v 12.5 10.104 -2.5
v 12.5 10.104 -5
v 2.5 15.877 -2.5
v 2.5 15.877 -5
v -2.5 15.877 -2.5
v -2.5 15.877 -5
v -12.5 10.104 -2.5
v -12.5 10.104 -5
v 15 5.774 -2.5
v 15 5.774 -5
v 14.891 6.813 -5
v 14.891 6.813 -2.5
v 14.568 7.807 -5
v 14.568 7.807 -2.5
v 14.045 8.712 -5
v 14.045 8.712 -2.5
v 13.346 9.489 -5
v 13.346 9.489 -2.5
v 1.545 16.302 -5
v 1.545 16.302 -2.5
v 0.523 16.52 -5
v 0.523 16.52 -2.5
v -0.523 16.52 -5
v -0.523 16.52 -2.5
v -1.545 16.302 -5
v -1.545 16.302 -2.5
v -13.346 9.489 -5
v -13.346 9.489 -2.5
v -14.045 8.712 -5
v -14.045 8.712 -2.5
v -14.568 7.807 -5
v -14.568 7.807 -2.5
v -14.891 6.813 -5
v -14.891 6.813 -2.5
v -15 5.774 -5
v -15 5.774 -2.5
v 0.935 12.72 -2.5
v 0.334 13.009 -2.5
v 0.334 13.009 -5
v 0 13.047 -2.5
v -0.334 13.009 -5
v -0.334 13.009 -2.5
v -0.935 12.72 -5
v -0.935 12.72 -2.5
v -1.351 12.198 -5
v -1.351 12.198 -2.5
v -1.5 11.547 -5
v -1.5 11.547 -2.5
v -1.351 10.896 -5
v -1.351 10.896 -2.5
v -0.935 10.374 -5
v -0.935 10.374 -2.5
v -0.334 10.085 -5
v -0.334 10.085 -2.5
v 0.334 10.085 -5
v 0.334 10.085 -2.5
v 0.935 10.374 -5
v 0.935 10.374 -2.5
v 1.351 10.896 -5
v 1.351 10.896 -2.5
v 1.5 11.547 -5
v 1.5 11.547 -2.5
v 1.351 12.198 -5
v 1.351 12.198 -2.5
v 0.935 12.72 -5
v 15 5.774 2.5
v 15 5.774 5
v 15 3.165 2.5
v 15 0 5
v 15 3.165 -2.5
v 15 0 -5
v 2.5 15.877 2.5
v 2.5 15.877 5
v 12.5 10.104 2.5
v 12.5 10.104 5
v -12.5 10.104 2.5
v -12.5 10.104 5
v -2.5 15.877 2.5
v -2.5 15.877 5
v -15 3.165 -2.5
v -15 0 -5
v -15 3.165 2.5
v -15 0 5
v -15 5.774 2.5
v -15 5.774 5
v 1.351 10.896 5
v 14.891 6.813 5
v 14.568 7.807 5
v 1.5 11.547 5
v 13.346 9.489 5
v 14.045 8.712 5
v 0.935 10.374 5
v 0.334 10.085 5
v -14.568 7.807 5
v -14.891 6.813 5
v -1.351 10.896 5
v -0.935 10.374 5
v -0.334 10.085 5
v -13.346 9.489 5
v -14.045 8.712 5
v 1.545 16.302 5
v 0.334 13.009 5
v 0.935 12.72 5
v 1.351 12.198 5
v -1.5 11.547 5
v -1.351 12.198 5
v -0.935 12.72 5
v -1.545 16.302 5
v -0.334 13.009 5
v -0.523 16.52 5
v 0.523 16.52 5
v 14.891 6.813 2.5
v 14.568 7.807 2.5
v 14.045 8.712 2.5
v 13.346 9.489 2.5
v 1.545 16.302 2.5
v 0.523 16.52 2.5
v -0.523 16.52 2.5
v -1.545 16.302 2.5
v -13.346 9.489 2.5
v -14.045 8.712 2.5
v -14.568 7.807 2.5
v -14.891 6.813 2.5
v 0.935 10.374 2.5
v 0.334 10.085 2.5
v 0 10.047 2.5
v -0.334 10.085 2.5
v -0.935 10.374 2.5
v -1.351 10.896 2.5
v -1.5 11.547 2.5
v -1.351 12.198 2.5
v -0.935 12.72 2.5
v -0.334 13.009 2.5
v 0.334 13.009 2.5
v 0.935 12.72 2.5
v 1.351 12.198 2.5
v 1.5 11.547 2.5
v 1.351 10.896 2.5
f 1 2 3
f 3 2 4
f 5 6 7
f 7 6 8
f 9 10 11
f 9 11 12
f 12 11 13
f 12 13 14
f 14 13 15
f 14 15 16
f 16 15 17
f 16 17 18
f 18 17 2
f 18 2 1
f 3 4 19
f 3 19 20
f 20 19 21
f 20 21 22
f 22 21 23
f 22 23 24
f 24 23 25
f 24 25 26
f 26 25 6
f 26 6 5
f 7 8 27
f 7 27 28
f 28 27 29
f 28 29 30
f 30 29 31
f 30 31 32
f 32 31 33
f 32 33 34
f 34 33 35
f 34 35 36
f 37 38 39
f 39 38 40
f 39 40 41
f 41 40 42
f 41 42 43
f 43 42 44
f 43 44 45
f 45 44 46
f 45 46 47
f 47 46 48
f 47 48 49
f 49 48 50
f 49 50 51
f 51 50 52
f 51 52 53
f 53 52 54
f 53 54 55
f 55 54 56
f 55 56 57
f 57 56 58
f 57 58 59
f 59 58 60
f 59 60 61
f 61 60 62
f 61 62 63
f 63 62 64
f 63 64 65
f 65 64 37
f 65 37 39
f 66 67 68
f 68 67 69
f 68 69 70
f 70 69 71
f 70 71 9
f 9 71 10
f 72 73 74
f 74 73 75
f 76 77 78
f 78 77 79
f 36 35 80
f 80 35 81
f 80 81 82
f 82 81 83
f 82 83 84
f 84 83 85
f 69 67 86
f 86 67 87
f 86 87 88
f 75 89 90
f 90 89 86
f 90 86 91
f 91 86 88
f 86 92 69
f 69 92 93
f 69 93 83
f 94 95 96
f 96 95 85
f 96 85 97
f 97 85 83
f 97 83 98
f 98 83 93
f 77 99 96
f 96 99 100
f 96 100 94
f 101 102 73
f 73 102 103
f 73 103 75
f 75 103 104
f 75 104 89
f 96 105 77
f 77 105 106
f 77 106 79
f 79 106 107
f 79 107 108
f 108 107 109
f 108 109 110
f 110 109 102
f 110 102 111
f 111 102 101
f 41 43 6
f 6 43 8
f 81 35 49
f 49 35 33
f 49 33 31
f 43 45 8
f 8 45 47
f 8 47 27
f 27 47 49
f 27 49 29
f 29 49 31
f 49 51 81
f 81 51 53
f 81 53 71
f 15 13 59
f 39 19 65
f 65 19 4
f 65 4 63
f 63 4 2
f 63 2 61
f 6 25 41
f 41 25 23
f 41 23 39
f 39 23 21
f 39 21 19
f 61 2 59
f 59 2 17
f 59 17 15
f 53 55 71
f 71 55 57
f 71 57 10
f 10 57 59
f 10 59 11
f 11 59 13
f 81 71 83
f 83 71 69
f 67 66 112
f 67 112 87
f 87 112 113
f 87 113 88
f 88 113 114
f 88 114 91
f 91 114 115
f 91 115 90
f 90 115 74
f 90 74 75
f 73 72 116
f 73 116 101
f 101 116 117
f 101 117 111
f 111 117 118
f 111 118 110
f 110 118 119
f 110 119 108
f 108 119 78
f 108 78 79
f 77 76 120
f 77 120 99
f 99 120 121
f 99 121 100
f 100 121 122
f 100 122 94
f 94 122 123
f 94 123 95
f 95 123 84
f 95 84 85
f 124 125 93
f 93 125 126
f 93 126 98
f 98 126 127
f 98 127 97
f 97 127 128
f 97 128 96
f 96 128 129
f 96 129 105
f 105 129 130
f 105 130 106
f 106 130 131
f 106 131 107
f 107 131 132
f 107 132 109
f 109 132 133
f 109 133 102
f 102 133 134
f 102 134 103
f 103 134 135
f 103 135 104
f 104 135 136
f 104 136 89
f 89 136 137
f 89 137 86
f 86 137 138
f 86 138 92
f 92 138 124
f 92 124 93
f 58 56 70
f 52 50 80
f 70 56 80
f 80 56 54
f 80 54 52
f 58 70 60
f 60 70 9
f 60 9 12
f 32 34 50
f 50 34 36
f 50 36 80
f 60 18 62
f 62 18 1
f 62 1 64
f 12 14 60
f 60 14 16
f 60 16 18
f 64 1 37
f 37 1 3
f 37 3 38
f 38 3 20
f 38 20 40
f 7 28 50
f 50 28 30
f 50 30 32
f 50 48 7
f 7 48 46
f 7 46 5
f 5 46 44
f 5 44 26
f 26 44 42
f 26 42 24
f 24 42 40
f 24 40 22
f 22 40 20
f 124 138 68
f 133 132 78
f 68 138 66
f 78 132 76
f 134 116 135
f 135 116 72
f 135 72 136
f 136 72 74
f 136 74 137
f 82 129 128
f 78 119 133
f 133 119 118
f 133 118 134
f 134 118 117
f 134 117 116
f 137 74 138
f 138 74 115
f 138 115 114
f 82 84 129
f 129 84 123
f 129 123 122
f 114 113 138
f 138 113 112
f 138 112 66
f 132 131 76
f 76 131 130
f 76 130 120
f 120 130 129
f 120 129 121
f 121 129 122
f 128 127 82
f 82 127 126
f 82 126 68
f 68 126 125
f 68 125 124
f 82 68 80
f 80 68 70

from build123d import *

# Parameters (mm, degrees)
BOSS_EXTRUDE1_DEPTH     = 5
SKETCH2_W               = 30
SKETCH2_H               = 19.460287126
CUT_EXTRUDE1_DEPTH      = 11
FILLET1_R               = 5
SKETCH3_R               = 1.5
CUT_EXTRUDE2_DEPTH      = 11
SKETCH4_W               = 5
SKETCH4_H               = 26.764096408
CUT_EXTRUDE3_DEPTH      = 16
CUT_EXTRUDE3_DEPTH_BACK = 16


with BuildPart() as part:
    # Sketch1 → Boss-Extrude1 (new body, symmetric)
    with BuildSketch(Plane.XY):
        Polygon((0, -17.320508076), (15, -8.660254038), (15, 8.660254038), (0, 17.320508076), (-15, 8.660254038), (-15, -8.660254038), align=None)
    extrude(amount=BOSS_EXTRUDE1_DEPTH, both=True)

    # Sketch2 → Cut-Extrude1 (cut, through all)
    with BuildSketch(Plane.XY.offset(5)):
        with Locations((0, -9.730143563)):
            Rectangle(SKETCH2_W, SKETCH2_H)
    extrude(amount=-CUT_EXTRUDE1_DEPTH, mode=Mode.SUBTRACT)

    # Fillet1
    fillet1_edges = [part.edges().sort_by_distance(p)[0] for p in [
        (-15, 8.660254038, 0),
        (0, 17.320508076, 0),
        (15, 8.660254038, 0),
    ]]
    fillet(fillet1_edges, radius=FILLET1_R)

    # Sketch3 → Cut-Extrude2 (cut, through all)
    with BuildSketch(Plane.XY.offset(5)):
        with Locations((0, 11.547005384)):
            Circle(SKETCH3_R)
    extrude(amount=-CUT_EXTRUDE2_DEPTH, mode=Mode.SUBTRACT)

    # Sketch4 → Cut-Extrude3 (cut, two sides)
    with BuildSketch(Plane(origin=(0, 0, 0), x_dir=(0, 0, -1), z_dir=(1, 0, 0))) as cut_extrude3_sk:
        with Locations((0, 16.547005384)):
            Rectangle(SKETCH4_W, SKETCH4_H)
    extrude(amount=CUT_EXTRUDE3_DEPTH, mode=Mode.SUBTRACT)
    extrude(cut_extrude3_sk.sketch, amount=-CUT_EXTRUDE3_DEPTH_BACK, mode=Mode.SUBTRACT)


solid = part.part
